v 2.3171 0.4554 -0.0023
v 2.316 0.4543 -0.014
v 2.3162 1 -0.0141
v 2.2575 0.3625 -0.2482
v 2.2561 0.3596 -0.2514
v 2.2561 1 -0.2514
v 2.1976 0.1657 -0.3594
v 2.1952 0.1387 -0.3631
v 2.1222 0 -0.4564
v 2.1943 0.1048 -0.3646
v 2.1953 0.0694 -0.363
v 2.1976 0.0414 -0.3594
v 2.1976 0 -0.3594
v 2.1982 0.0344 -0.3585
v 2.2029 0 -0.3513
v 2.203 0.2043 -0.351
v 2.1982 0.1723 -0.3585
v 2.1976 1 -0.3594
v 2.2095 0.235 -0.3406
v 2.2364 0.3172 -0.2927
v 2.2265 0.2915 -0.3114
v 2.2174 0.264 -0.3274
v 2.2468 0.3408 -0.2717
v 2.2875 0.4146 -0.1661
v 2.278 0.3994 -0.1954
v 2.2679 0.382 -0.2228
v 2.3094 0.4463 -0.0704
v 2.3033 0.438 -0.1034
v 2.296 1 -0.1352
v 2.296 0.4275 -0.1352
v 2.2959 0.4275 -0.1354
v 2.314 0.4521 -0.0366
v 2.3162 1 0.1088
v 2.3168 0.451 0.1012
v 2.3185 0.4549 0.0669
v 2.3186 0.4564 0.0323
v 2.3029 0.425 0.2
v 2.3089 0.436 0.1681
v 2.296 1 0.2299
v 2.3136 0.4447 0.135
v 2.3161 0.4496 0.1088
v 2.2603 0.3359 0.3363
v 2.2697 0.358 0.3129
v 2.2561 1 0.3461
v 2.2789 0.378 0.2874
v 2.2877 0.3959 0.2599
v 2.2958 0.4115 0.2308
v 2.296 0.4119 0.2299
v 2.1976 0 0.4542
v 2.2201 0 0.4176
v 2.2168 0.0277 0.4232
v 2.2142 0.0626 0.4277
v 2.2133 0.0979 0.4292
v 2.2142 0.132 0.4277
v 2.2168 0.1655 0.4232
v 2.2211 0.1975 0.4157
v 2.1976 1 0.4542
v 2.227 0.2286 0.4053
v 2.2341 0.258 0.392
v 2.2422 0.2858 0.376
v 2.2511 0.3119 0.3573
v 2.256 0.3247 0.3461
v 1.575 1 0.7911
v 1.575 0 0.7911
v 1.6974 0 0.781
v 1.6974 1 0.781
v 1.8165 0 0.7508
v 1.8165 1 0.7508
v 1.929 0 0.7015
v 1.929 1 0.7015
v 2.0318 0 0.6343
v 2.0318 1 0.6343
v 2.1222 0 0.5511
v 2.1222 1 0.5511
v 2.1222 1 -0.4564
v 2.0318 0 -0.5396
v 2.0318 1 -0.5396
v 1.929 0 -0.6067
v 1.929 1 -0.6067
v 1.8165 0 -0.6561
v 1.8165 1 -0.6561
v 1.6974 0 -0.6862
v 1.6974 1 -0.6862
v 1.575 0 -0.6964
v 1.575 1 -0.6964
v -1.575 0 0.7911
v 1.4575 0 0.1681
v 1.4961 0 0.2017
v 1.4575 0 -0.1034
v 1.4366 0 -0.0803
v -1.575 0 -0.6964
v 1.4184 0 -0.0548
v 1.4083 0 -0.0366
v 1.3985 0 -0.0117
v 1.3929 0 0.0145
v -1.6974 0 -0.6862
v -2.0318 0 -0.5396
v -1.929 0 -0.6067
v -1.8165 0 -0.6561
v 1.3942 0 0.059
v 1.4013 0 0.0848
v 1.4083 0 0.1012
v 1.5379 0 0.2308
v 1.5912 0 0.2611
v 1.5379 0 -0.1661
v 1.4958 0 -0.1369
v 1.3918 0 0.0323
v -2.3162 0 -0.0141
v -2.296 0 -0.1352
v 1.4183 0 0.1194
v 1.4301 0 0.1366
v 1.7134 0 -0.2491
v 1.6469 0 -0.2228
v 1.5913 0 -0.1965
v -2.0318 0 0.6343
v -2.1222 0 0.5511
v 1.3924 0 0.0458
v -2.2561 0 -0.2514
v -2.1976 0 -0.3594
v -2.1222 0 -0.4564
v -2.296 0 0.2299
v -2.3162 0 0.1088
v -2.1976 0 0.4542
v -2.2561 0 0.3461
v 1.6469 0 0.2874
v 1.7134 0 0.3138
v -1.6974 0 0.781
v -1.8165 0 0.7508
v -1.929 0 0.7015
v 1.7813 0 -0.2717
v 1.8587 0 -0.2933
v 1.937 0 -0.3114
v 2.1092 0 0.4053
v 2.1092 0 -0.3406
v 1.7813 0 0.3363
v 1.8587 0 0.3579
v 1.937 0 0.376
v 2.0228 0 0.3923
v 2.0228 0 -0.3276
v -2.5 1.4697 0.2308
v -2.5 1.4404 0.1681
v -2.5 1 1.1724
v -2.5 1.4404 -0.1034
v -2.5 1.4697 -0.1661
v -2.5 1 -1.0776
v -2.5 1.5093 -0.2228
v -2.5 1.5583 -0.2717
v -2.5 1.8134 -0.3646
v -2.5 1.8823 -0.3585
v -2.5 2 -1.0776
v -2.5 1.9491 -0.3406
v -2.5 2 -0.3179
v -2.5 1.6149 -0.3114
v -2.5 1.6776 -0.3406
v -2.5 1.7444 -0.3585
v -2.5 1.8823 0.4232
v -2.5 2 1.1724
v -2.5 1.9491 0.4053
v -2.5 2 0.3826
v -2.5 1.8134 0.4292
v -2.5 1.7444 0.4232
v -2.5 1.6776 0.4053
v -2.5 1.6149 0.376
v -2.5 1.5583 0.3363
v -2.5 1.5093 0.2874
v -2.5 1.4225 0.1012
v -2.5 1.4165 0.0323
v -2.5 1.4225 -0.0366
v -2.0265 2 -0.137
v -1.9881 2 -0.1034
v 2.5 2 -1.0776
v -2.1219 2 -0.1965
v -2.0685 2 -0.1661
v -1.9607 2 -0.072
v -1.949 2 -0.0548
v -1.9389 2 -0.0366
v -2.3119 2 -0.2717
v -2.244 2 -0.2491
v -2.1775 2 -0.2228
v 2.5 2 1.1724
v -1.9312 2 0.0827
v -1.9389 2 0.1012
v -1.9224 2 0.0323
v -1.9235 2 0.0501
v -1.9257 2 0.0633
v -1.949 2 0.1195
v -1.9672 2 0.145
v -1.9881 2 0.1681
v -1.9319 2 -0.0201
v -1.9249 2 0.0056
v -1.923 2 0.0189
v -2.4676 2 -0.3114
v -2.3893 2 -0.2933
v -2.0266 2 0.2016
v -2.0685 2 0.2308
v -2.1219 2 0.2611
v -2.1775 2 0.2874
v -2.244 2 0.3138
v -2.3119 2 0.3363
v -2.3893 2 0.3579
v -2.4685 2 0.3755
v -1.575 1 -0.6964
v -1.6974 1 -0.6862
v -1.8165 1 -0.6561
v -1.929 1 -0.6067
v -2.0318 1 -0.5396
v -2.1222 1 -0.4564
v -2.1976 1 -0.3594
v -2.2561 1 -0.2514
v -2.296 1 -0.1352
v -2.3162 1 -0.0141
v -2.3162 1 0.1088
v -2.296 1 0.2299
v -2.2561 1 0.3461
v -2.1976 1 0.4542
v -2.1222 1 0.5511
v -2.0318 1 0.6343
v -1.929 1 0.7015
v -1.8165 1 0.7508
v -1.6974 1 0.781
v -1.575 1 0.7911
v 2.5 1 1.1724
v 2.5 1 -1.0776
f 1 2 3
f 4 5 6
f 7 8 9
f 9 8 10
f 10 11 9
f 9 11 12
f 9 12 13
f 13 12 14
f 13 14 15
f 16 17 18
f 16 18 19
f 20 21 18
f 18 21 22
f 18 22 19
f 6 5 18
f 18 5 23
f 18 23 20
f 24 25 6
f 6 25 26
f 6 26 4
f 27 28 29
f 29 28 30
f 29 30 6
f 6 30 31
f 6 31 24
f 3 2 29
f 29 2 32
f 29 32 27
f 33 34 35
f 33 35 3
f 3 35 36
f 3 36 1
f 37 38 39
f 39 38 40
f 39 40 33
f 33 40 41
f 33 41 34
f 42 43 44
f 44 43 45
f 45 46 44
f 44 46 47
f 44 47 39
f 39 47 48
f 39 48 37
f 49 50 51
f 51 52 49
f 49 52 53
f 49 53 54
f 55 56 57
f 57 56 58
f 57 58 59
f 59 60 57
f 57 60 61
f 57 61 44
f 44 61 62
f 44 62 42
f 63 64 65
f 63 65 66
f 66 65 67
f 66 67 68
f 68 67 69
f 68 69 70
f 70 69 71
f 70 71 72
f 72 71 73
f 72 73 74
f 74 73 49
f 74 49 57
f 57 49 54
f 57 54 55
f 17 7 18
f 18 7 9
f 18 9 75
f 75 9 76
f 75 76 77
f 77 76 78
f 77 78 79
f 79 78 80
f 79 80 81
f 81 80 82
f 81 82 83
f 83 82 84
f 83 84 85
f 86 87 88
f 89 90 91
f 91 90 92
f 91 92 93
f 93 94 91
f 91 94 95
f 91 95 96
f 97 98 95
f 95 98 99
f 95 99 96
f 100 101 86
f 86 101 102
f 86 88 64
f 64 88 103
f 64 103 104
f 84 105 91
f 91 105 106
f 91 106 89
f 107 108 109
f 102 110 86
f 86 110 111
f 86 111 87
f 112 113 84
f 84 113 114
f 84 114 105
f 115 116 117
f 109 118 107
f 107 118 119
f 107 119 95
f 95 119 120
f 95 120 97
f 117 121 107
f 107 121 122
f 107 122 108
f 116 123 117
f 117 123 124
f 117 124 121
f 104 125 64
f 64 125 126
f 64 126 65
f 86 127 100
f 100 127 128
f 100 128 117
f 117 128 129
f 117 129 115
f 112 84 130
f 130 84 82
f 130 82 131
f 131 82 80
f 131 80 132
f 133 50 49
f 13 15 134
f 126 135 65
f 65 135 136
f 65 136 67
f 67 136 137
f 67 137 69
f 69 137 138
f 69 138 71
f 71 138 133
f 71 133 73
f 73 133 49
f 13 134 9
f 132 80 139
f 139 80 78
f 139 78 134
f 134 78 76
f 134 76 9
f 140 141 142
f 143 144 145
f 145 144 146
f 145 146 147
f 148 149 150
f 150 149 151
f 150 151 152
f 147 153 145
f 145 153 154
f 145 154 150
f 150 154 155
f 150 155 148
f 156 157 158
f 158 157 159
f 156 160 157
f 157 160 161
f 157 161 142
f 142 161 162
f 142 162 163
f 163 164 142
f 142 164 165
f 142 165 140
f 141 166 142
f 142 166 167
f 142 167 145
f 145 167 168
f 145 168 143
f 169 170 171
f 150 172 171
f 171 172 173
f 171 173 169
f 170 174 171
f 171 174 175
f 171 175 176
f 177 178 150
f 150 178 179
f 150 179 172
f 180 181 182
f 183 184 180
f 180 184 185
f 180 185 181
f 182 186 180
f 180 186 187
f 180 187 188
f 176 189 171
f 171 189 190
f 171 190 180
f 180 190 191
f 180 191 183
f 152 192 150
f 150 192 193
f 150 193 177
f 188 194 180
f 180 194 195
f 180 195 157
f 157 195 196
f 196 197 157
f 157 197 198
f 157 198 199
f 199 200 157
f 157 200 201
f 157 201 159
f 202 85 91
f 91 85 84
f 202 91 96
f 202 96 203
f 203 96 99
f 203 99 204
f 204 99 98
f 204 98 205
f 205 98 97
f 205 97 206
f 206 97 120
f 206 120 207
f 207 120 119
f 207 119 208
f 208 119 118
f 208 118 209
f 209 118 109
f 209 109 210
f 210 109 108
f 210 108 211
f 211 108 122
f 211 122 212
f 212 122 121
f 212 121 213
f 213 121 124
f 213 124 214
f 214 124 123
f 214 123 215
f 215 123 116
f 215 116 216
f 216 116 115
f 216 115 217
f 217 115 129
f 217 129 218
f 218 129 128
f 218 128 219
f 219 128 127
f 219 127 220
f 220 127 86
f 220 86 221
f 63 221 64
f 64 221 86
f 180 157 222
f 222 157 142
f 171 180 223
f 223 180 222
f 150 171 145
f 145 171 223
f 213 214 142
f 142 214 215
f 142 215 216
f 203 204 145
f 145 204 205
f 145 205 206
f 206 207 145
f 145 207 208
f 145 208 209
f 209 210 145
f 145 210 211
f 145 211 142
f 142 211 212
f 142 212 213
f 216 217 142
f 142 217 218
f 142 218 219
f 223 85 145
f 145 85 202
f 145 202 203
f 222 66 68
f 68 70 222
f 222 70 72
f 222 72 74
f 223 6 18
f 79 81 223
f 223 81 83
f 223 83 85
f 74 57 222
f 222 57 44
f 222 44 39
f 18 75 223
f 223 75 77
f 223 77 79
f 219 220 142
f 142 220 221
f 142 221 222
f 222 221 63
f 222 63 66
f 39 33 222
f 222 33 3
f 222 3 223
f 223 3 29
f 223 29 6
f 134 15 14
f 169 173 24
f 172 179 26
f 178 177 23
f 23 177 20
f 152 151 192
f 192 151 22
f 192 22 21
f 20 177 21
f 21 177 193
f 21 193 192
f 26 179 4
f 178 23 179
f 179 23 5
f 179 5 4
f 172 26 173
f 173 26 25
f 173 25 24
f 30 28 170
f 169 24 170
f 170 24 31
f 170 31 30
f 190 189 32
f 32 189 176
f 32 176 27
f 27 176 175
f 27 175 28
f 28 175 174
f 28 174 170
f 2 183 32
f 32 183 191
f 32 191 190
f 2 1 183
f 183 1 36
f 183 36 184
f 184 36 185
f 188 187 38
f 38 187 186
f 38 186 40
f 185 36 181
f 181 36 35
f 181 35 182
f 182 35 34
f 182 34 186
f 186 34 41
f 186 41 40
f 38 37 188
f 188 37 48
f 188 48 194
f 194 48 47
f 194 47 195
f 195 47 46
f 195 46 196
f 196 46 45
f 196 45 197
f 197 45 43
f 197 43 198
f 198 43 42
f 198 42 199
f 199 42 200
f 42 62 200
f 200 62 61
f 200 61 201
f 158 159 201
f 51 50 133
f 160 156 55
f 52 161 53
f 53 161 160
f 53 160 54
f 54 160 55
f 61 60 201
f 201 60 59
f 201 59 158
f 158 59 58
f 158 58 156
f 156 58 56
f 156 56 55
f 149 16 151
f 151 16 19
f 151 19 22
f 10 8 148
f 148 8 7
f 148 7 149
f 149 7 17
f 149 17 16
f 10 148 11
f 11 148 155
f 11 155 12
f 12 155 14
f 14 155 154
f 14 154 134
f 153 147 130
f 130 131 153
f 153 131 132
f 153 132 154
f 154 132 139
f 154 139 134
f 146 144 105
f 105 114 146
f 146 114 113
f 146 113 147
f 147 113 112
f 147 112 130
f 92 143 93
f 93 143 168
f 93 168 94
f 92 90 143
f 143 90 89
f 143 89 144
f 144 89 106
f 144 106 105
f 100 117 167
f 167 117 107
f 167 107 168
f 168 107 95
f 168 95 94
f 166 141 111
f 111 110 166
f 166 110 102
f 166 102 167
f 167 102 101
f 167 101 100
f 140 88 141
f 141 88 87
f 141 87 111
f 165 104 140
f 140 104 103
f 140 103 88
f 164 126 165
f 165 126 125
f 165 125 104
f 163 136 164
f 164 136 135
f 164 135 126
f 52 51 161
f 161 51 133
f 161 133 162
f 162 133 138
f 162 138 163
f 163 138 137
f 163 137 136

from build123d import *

# Parameters (mm, degrees)
SKETCH1_W           = 3.15
SKETCH1_H           = 1.4875
BOSS_EXTRUDE1_DEPTH = 1
SKETCH5_W           = 5
SKETCH5_H           = 2.25
BOSS_EXTRUDE2_DEPTH = 1
SKETCH4_2_R         = 0.396875


with BuildPart() as part:
    # Sketch1 → Boss-Extrude1 (new body)
    with BuildSketch(Plane(origin=(0, 0, 0), x_dir=(1, 0, 0), z_dir=(0, 1, 0))):
        with Locations((0, -0.047367461)):
            Rectangle(SKETCH1_W, SKETCH1_H)
        with BuildLine():
            Line((-1.575, -0.791117461), (-1.575, 0.696382539))
            ThreePointArc((-1.575, 0.696382539), (-2.31875, -0.047367461), (-1.575, -0.791117461))
        make_face()
        with BuildLine():
            ThreePointArc((1.575, -0.791117461), (2.31875, -0.047367461), (1.575, 0.696382539))
            Line((1.575, 0.696382539), (1.575, -0.791117461))
        make_face()
    extrude(amount=BOSS_EXTRUDE1_DEPTH)

    # Sketch5 → Boss-Extrude2 (add)
    with BuildSketch(Plane(origin=(0, 1, 0), x_dir=(1, 0, 0), z_dir=(0, 1, 0))):
        with Locations((0, -0.047367461)):
            Rectangle(SKETCH5_W, SKETCH5_H)
    extrude(amount=BOSS_EXTRUDE2_DEPTH)

    # Cut-Sweep4: sweep along a path in Sketch6
    with BuildLine(Plane.XY) as cut_sweep4_path:
        Line((2.5, 0), (-2.867631708, 1.95365817))
    # Sketch4<2> → Cut-Sweep4 (sweep, cut)
    with BuildSketch(Plane(origin=(2.5, 1, 0), x_dir=(0, 0, 1), z_dir=(-1, 0, 0))):
        with Locations((0.032314724, -1.006488934)):
            Circle(SKETCH4_2_R)
    sweep(path=cut_sweep4_path.line, mode=Mode.SUBTRACT)


solid = part.part
